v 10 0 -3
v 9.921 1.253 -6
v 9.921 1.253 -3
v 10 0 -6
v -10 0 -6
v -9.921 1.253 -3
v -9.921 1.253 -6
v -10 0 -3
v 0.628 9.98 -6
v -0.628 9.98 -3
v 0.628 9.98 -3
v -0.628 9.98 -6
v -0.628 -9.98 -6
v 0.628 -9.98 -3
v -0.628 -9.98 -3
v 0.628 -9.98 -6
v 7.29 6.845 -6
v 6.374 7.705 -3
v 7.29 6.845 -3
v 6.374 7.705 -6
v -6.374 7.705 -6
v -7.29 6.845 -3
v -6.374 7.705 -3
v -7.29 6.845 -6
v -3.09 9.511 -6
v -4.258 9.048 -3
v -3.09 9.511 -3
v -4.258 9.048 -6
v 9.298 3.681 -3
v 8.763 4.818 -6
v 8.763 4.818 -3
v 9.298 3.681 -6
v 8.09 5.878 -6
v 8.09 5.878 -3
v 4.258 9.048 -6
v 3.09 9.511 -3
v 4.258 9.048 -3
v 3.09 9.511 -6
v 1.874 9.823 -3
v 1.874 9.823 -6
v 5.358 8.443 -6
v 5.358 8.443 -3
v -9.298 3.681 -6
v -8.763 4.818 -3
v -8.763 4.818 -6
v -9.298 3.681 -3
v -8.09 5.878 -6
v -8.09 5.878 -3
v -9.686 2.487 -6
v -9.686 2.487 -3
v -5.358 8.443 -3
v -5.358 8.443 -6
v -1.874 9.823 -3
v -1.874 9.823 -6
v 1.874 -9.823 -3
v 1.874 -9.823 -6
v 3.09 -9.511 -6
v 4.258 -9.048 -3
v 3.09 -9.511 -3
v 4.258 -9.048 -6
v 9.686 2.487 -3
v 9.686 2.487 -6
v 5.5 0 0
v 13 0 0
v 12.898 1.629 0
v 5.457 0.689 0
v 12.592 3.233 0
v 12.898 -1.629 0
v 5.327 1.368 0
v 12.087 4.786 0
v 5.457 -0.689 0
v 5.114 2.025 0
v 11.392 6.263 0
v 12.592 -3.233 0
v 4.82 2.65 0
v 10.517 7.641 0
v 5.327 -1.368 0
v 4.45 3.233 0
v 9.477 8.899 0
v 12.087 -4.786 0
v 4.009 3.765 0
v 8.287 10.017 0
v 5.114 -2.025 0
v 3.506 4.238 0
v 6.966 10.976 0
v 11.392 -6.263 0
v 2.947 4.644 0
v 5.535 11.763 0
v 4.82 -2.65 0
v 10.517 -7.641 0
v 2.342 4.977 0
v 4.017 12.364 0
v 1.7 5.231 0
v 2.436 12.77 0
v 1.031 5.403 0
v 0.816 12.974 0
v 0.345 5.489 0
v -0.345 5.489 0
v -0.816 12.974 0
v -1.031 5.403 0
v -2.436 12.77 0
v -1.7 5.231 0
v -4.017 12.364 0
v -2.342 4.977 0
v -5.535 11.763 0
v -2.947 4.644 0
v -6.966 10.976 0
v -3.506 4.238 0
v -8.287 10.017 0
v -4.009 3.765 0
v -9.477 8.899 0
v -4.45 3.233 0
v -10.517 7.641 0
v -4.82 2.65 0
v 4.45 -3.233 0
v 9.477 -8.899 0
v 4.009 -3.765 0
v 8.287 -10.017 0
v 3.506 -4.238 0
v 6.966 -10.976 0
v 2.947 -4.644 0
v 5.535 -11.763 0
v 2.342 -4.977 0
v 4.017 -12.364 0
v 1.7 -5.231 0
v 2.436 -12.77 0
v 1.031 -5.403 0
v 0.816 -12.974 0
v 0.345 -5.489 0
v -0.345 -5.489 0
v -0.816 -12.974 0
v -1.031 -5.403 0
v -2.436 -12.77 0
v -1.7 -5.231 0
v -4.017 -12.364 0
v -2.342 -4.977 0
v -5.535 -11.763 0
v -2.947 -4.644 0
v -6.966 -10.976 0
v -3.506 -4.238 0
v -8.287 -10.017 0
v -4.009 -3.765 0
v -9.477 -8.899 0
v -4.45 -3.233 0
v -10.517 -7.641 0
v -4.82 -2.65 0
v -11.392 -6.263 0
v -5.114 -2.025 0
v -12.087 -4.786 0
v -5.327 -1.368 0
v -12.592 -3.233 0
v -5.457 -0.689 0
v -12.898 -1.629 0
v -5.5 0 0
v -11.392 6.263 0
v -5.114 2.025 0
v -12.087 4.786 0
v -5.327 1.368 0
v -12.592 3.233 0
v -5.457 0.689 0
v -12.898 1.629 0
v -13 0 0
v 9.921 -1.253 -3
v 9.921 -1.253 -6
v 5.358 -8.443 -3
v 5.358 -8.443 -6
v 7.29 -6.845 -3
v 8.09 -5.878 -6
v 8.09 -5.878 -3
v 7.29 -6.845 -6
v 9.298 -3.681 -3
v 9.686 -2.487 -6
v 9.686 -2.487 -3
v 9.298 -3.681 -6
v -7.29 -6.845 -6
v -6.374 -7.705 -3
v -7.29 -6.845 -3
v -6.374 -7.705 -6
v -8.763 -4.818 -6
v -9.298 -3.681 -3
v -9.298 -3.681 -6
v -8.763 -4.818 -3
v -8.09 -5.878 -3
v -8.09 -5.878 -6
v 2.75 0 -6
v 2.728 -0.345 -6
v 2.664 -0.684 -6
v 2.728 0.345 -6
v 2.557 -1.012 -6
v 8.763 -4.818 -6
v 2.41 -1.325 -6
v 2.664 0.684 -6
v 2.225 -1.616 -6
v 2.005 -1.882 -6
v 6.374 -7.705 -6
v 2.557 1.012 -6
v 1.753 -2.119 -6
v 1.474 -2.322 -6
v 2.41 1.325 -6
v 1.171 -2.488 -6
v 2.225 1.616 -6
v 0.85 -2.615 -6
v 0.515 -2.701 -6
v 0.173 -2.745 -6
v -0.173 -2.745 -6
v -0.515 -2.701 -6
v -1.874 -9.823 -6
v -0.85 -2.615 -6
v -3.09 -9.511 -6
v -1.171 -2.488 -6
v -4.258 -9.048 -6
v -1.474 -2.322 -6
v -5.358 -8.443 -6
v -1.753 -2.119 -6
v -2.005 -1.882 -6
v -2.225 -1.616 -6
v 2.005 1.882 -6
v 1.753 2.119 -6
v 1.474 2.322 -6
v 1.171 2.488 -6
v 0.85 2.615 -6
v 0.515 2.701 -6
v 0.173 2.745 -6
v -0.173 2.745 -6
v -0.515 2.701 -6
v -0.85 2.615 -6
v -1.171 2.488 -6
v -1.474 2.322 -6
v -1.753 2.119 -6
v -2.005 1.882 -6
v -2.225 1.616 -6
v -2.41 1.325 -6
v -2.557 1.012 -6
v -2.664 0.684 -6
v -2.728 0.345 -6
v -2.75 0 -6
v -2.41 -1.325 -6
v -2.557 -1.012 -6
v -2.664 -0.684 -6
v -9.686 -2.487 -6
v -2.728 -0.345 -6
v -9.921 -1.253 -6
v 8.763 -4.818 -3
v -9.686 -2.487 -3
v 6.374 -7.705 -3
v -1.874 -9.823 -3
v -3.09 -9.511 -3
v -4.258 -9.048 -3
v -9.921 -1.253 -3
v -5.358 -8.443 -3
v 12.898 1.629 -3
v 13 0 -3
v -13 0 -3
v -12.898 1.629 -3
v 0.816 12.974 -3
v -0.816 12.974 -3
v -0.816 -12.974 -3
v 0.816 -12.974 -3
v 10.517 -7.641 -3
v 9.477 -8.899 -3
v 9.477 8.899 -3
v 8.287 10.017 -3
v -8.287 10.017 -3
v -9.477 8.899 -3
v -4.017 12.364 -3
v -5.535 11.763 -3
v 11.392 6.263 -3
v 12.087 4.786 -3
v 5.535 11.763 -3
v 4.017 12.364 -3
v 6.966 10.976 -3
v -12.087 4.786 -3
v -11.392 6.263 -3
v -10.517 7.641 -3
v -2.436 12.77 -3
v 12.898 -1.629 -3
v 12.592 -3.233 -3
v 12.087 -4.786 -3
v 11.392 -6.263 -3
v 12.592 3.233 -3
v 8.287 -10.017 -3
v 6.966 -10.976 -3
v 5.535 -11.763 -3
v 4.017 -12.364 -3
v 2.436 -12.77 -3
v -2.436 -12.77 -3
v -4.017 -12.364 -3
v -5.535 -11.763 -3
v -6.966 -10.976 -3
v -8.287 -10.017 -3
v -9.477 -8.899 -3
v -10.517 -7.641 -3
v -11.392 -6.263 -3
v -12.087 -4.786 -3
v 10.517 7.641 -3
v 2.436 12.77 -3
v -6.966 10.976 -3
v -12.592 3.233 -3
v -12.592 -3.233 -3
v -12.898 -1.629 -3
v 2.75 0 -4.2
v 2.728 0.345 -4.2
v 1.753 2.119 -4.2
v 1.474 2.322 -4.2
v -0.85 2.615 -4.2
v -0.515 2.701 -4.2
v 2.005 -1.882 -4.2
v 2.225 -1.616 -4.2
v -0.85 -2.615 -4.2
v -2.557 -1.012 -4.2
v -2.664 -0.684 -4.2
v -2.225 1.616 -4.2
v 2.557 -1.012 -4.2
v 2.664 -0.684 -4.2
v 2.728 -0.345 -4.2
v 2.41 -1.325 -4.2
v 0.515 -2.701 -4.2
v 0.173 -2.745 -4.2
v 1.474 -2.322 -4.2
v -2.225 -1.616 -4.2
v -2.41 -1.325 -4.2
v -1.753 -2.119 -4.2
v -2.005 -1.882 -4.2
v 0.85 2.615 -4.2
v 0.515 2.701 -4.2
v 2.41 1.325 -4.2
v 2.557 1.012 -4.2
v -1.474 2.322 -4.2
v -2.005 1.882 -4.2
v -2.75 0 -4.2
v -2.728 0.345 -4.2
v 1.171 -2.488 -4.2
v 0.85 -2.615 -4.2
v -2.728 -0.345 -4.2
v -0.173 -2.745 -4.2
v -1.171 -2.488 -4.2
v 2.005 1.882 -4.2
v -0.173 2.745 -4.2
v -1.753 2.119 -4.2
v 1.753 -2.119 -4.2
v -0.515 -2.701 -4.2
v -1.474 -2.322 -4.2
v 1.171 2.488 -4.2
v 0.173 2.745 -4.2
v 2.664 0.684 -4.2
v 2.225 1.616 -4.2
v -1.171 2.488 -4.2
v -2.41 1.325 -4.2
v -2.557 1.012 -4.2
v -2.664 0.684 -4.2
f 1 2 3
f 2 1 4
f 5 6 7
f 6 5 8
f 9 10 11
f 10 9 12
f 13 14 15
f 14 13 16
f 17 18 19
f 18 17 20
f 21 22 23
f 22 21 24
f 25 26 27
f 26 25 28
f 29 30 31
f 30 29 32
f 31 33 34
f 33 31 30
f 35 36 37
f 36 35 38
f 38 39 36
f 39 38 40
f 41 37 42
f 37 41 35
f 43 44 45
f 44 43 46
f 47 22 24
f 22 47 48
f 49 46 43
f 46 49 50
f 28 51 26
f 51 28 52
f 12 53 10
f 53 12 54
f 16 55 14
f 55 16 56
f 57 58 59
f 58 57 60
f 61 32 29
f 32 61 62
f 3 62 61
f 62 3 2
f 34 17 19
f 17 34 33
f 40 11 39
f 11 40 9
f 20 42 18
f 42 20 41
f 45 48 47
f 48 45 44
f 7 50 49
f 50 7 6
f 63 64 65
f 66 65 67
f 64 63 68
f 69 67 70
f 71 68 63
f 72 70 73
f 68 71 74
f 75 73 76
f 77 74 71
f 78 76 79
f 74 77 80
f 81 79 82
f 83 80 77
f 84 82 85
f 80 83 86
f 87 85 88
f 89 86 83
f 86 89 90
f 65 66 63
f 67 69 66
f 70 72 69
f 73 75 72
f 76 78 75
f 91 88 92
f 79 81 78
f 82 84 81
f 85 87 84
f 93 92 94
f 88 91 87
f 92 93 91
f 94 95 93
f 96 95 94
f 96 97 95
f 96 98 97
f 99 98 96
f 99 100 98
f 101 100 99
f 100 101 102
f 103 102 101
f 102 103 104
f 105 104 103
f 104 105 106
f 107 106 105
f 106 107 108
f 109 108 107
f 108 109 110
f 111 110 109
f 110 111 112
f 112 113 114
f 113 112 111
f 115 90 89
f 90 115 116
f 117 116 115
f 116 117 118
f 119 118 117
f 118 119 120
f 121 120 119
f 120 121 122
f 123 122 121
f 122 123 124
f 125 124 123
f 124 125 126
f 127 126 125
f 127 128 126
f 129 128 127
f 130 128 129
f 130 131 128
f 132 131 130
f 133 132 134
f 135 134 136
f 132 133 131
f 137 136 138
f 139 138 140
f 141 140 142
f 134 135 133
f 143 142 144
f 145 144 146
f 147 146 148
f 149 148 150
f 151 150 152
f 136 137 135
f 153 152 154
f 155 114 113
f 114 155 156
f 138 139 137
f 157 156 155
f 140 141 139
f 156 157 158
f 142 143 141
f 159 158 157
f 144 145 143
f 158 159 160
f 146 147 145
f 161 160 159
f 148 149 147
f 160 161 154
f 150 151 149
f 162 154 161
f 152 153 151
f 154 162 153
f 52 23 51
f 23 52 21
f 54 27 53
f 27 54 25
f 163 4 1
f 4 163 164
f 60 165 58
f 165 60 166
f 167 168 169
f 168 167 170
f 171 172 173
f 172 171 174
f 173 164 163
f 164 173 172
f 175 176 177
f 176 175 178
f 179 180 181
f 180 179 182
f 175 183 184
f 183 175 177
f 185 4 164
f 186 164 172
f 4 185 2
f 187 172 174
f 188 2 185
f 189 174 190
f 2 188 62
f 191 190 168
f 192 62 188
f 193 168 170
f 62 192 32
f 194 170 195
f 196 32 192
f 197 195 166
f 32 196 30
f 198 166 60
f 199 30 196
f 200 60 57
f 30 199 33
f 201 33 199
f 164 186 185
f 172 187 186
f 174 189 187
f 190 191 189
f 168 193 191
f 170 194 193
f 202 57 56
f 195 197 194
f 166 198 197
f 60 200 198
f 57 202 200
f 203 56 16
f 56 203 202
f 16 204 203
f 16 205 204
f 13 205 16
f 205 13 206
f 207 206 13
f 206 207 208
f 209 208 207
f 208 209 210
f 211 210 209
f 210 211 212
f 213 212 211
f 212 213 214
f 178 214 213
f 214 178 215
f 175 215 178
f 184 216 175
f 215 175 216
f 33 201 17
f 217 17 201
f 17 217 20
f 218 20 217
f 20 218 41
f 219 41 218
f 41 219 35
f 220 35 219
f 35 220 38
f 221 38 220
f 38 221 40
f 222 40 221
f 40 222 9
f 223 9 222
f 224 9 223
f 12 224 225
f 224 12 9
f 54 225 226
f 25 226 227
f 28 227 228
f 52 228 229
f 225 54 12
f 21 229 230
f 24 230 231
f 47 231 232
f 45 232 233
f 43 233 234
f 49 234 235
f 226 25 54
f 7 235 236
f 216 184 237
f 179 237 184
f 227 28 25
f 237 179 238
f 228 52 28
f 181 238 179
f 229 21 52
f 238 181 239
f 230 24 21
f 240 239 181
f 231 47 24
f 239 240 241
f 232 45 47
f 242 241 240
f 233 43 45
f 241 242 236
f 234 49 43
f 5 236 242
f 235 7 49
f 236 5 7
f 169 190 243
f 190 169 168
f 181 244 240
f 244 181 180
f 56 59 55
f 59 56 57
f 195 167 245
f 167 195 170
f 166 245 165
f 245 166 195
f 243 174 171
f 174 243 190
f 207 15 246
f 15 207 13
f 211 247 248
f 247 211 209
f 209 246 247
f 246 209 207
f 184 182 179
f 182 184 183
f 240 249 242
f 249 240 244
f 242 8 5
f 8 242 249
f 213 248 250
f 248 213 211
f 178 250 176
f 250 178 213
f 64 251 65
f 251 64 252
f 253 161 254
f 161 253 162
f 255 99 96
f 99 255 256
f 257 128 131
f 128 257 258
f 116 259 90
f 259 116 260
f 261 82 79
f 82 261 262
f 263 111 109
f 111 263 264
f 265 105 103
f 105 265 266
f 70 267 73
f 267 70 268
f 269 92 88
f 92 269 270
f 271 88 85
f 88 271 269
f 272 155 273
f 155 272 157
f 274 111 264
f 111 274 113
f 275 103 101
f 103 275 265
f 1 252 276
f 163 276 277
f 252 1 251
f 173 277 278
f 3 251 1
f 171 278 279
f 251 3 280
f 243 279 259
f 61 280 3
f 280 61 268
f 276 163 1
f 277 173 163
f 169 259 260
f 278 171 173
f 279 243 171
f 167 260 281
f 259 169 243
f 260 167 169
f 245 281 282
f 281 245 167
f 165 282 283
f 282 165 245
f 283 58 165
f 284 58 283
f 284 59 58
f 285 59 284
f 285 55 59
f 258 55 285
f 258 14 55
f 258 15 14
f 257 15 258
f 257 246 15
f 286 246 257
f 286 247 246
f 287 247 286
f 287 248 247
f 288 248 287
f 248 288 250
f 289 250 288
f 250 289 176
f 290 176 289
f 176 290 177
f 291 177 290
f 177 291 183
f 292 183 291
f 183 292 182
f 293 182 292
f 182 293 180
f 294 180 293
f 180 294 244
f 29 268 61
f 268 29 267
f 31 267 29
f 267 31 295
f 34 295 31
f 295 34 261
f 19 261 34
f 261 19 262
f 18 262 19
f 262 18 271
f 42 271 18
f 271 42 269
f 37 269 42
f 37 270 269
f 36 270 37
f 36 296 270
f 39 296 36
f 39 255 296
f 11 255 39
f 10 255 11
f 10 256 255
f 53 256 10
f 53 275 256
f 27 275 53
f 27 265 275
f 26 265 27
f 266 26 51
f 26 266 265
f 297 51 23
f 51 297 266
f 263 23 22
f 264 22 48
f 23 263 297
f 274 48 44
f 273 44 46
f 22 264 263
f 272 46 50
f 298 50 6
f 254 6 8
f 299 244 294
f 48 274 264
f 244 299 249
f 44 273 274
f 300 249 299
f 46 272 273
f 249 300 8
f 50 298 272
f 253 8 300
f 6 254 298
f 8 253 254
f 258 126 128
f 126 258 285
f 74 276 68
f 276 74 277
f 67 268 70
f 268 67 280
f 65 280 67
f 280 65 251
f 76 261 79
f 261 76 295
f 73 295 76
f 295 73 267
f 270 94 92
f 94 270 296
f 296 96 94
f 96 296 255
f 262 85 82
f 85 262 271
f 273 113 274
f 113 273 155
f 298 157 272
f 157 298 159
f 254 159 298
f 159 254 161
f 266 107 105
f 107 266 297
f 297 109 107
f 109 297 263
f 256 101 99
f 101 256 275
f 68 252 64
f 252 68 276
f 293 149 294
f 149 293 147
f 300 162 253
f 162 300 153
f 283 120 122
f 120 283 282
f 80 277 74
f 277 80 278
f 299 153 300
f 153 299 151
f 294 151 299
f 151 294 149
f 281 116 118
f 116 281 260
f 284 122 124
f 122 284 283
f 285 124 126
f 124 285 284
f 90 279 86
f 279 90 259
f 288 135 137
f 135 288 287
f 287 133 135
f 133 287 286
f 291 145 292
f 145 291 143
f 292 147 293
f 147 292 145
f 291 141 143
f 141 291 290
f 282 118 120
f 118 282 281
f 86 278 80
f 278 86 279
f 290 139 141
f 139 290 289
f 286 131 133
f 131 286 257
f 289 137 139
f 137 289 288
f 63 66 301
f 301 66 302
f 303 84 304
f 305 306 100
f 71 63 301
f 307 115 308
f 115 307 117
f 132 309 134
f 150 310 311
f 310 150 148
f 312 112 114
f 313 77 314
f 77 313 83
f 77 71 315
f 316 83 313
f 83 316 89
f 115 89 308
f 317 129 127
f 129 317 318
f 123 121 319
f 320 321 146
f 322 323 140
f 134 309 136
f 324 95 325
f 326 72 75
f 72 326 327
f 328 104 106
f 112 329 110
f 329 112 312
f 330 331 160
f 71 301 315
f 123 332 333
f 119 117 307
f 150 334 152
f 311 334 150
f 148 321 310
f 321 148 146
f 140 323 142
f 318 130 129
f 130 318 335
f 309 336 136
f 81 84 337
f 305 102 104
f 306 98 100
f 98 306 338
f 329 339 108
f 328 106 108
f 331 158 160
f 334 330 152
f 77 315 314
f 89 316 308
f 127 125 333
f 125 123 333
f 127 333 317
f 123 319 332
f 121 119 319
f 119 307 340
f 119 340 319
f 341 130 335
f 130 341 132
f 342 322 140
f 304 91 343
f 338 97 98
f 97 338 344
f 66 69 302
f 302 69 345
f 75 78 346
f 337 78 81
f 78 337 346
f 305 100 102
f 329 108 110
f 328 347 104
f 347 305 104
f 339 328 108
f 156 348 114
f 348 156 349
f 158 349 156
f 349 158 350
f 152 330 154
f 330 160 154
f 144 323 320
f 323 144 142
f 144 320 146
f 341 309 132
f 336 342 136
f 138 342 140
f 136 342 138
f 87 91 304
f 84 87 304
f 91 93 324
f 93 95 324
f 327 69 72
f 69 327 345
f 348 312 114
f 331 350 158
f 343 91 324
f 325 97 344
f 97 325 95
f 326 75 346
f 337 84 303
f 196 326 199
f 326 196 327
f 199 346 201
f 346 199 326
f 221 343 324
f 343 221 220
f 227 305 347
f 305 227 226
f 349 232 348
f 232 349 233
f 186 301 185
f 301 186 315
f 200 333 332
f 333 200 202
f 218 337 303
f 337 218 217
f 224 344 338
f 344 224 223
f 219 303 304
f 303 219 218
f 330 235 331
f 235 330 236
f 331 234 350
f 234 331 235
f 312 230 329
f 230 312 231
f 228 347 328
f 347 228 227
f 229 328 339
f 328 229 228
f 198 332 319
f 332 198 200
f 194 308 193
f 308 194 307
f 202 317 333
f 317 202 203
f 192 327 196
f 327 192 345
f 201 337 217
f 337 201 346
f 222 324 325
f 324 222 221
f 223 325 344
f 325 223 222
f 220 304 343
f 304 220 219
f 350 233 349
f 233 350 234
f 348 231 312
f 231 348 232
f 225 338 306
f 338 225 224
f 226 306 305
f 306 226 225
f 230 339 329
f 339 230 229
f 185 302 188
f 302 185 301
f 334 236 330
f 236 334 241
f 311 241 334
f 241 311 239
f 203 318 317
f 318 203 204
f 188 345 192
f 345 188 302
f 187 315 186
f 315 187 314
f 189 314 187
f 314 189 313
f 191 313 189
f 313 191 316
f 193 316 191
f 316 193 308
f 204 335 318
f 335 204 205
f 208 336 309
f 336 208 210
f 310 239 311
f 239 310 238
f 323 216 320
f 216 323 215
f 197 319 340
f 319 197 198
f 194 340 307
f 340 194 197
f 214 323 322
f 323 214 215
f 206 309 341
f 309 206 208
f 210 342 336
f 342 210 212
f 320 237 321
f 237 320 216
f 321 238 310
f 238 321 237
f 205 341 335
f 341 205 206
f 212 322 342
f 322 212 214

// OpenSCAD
$fn = 50;


difference() {
	union() {
		translate(v = [0, 0, -6.0000000000]) {
			cylinder(h = 6, r = 10.0000000000);
		}
		translate(v = [0, 0, -3.0000000000]) {
			cylinder(h = 3, r = 13.0000000000);
		}
	}
	union() {
		translate(v = [0, 0, 0]) {
			rotate(a = [0, 0, 0]) {
				difference() {
					union() {
						#translate(v = [0, 0, -6.0000000000]) {
							cylinder(h = 6, r = 2.2500000000);
						}
						#translate(v = [0, 0, -4.2000000000]) {
							cylinder(h = 4.2000000000, r1 = 2.7500000000, r2 = 5.5000000000);
						}
						#translate(v = [0, 0, -6.0000000000]) {
							cylinder(h = 6, r = 2.7500000000);
						}
						#translate(v = [0, 0, -6.0000000000]) {
							cylinder(h = 6, r = 2.2500000000);
						}
					}
					union();
				}
			}
		}
	}
}
